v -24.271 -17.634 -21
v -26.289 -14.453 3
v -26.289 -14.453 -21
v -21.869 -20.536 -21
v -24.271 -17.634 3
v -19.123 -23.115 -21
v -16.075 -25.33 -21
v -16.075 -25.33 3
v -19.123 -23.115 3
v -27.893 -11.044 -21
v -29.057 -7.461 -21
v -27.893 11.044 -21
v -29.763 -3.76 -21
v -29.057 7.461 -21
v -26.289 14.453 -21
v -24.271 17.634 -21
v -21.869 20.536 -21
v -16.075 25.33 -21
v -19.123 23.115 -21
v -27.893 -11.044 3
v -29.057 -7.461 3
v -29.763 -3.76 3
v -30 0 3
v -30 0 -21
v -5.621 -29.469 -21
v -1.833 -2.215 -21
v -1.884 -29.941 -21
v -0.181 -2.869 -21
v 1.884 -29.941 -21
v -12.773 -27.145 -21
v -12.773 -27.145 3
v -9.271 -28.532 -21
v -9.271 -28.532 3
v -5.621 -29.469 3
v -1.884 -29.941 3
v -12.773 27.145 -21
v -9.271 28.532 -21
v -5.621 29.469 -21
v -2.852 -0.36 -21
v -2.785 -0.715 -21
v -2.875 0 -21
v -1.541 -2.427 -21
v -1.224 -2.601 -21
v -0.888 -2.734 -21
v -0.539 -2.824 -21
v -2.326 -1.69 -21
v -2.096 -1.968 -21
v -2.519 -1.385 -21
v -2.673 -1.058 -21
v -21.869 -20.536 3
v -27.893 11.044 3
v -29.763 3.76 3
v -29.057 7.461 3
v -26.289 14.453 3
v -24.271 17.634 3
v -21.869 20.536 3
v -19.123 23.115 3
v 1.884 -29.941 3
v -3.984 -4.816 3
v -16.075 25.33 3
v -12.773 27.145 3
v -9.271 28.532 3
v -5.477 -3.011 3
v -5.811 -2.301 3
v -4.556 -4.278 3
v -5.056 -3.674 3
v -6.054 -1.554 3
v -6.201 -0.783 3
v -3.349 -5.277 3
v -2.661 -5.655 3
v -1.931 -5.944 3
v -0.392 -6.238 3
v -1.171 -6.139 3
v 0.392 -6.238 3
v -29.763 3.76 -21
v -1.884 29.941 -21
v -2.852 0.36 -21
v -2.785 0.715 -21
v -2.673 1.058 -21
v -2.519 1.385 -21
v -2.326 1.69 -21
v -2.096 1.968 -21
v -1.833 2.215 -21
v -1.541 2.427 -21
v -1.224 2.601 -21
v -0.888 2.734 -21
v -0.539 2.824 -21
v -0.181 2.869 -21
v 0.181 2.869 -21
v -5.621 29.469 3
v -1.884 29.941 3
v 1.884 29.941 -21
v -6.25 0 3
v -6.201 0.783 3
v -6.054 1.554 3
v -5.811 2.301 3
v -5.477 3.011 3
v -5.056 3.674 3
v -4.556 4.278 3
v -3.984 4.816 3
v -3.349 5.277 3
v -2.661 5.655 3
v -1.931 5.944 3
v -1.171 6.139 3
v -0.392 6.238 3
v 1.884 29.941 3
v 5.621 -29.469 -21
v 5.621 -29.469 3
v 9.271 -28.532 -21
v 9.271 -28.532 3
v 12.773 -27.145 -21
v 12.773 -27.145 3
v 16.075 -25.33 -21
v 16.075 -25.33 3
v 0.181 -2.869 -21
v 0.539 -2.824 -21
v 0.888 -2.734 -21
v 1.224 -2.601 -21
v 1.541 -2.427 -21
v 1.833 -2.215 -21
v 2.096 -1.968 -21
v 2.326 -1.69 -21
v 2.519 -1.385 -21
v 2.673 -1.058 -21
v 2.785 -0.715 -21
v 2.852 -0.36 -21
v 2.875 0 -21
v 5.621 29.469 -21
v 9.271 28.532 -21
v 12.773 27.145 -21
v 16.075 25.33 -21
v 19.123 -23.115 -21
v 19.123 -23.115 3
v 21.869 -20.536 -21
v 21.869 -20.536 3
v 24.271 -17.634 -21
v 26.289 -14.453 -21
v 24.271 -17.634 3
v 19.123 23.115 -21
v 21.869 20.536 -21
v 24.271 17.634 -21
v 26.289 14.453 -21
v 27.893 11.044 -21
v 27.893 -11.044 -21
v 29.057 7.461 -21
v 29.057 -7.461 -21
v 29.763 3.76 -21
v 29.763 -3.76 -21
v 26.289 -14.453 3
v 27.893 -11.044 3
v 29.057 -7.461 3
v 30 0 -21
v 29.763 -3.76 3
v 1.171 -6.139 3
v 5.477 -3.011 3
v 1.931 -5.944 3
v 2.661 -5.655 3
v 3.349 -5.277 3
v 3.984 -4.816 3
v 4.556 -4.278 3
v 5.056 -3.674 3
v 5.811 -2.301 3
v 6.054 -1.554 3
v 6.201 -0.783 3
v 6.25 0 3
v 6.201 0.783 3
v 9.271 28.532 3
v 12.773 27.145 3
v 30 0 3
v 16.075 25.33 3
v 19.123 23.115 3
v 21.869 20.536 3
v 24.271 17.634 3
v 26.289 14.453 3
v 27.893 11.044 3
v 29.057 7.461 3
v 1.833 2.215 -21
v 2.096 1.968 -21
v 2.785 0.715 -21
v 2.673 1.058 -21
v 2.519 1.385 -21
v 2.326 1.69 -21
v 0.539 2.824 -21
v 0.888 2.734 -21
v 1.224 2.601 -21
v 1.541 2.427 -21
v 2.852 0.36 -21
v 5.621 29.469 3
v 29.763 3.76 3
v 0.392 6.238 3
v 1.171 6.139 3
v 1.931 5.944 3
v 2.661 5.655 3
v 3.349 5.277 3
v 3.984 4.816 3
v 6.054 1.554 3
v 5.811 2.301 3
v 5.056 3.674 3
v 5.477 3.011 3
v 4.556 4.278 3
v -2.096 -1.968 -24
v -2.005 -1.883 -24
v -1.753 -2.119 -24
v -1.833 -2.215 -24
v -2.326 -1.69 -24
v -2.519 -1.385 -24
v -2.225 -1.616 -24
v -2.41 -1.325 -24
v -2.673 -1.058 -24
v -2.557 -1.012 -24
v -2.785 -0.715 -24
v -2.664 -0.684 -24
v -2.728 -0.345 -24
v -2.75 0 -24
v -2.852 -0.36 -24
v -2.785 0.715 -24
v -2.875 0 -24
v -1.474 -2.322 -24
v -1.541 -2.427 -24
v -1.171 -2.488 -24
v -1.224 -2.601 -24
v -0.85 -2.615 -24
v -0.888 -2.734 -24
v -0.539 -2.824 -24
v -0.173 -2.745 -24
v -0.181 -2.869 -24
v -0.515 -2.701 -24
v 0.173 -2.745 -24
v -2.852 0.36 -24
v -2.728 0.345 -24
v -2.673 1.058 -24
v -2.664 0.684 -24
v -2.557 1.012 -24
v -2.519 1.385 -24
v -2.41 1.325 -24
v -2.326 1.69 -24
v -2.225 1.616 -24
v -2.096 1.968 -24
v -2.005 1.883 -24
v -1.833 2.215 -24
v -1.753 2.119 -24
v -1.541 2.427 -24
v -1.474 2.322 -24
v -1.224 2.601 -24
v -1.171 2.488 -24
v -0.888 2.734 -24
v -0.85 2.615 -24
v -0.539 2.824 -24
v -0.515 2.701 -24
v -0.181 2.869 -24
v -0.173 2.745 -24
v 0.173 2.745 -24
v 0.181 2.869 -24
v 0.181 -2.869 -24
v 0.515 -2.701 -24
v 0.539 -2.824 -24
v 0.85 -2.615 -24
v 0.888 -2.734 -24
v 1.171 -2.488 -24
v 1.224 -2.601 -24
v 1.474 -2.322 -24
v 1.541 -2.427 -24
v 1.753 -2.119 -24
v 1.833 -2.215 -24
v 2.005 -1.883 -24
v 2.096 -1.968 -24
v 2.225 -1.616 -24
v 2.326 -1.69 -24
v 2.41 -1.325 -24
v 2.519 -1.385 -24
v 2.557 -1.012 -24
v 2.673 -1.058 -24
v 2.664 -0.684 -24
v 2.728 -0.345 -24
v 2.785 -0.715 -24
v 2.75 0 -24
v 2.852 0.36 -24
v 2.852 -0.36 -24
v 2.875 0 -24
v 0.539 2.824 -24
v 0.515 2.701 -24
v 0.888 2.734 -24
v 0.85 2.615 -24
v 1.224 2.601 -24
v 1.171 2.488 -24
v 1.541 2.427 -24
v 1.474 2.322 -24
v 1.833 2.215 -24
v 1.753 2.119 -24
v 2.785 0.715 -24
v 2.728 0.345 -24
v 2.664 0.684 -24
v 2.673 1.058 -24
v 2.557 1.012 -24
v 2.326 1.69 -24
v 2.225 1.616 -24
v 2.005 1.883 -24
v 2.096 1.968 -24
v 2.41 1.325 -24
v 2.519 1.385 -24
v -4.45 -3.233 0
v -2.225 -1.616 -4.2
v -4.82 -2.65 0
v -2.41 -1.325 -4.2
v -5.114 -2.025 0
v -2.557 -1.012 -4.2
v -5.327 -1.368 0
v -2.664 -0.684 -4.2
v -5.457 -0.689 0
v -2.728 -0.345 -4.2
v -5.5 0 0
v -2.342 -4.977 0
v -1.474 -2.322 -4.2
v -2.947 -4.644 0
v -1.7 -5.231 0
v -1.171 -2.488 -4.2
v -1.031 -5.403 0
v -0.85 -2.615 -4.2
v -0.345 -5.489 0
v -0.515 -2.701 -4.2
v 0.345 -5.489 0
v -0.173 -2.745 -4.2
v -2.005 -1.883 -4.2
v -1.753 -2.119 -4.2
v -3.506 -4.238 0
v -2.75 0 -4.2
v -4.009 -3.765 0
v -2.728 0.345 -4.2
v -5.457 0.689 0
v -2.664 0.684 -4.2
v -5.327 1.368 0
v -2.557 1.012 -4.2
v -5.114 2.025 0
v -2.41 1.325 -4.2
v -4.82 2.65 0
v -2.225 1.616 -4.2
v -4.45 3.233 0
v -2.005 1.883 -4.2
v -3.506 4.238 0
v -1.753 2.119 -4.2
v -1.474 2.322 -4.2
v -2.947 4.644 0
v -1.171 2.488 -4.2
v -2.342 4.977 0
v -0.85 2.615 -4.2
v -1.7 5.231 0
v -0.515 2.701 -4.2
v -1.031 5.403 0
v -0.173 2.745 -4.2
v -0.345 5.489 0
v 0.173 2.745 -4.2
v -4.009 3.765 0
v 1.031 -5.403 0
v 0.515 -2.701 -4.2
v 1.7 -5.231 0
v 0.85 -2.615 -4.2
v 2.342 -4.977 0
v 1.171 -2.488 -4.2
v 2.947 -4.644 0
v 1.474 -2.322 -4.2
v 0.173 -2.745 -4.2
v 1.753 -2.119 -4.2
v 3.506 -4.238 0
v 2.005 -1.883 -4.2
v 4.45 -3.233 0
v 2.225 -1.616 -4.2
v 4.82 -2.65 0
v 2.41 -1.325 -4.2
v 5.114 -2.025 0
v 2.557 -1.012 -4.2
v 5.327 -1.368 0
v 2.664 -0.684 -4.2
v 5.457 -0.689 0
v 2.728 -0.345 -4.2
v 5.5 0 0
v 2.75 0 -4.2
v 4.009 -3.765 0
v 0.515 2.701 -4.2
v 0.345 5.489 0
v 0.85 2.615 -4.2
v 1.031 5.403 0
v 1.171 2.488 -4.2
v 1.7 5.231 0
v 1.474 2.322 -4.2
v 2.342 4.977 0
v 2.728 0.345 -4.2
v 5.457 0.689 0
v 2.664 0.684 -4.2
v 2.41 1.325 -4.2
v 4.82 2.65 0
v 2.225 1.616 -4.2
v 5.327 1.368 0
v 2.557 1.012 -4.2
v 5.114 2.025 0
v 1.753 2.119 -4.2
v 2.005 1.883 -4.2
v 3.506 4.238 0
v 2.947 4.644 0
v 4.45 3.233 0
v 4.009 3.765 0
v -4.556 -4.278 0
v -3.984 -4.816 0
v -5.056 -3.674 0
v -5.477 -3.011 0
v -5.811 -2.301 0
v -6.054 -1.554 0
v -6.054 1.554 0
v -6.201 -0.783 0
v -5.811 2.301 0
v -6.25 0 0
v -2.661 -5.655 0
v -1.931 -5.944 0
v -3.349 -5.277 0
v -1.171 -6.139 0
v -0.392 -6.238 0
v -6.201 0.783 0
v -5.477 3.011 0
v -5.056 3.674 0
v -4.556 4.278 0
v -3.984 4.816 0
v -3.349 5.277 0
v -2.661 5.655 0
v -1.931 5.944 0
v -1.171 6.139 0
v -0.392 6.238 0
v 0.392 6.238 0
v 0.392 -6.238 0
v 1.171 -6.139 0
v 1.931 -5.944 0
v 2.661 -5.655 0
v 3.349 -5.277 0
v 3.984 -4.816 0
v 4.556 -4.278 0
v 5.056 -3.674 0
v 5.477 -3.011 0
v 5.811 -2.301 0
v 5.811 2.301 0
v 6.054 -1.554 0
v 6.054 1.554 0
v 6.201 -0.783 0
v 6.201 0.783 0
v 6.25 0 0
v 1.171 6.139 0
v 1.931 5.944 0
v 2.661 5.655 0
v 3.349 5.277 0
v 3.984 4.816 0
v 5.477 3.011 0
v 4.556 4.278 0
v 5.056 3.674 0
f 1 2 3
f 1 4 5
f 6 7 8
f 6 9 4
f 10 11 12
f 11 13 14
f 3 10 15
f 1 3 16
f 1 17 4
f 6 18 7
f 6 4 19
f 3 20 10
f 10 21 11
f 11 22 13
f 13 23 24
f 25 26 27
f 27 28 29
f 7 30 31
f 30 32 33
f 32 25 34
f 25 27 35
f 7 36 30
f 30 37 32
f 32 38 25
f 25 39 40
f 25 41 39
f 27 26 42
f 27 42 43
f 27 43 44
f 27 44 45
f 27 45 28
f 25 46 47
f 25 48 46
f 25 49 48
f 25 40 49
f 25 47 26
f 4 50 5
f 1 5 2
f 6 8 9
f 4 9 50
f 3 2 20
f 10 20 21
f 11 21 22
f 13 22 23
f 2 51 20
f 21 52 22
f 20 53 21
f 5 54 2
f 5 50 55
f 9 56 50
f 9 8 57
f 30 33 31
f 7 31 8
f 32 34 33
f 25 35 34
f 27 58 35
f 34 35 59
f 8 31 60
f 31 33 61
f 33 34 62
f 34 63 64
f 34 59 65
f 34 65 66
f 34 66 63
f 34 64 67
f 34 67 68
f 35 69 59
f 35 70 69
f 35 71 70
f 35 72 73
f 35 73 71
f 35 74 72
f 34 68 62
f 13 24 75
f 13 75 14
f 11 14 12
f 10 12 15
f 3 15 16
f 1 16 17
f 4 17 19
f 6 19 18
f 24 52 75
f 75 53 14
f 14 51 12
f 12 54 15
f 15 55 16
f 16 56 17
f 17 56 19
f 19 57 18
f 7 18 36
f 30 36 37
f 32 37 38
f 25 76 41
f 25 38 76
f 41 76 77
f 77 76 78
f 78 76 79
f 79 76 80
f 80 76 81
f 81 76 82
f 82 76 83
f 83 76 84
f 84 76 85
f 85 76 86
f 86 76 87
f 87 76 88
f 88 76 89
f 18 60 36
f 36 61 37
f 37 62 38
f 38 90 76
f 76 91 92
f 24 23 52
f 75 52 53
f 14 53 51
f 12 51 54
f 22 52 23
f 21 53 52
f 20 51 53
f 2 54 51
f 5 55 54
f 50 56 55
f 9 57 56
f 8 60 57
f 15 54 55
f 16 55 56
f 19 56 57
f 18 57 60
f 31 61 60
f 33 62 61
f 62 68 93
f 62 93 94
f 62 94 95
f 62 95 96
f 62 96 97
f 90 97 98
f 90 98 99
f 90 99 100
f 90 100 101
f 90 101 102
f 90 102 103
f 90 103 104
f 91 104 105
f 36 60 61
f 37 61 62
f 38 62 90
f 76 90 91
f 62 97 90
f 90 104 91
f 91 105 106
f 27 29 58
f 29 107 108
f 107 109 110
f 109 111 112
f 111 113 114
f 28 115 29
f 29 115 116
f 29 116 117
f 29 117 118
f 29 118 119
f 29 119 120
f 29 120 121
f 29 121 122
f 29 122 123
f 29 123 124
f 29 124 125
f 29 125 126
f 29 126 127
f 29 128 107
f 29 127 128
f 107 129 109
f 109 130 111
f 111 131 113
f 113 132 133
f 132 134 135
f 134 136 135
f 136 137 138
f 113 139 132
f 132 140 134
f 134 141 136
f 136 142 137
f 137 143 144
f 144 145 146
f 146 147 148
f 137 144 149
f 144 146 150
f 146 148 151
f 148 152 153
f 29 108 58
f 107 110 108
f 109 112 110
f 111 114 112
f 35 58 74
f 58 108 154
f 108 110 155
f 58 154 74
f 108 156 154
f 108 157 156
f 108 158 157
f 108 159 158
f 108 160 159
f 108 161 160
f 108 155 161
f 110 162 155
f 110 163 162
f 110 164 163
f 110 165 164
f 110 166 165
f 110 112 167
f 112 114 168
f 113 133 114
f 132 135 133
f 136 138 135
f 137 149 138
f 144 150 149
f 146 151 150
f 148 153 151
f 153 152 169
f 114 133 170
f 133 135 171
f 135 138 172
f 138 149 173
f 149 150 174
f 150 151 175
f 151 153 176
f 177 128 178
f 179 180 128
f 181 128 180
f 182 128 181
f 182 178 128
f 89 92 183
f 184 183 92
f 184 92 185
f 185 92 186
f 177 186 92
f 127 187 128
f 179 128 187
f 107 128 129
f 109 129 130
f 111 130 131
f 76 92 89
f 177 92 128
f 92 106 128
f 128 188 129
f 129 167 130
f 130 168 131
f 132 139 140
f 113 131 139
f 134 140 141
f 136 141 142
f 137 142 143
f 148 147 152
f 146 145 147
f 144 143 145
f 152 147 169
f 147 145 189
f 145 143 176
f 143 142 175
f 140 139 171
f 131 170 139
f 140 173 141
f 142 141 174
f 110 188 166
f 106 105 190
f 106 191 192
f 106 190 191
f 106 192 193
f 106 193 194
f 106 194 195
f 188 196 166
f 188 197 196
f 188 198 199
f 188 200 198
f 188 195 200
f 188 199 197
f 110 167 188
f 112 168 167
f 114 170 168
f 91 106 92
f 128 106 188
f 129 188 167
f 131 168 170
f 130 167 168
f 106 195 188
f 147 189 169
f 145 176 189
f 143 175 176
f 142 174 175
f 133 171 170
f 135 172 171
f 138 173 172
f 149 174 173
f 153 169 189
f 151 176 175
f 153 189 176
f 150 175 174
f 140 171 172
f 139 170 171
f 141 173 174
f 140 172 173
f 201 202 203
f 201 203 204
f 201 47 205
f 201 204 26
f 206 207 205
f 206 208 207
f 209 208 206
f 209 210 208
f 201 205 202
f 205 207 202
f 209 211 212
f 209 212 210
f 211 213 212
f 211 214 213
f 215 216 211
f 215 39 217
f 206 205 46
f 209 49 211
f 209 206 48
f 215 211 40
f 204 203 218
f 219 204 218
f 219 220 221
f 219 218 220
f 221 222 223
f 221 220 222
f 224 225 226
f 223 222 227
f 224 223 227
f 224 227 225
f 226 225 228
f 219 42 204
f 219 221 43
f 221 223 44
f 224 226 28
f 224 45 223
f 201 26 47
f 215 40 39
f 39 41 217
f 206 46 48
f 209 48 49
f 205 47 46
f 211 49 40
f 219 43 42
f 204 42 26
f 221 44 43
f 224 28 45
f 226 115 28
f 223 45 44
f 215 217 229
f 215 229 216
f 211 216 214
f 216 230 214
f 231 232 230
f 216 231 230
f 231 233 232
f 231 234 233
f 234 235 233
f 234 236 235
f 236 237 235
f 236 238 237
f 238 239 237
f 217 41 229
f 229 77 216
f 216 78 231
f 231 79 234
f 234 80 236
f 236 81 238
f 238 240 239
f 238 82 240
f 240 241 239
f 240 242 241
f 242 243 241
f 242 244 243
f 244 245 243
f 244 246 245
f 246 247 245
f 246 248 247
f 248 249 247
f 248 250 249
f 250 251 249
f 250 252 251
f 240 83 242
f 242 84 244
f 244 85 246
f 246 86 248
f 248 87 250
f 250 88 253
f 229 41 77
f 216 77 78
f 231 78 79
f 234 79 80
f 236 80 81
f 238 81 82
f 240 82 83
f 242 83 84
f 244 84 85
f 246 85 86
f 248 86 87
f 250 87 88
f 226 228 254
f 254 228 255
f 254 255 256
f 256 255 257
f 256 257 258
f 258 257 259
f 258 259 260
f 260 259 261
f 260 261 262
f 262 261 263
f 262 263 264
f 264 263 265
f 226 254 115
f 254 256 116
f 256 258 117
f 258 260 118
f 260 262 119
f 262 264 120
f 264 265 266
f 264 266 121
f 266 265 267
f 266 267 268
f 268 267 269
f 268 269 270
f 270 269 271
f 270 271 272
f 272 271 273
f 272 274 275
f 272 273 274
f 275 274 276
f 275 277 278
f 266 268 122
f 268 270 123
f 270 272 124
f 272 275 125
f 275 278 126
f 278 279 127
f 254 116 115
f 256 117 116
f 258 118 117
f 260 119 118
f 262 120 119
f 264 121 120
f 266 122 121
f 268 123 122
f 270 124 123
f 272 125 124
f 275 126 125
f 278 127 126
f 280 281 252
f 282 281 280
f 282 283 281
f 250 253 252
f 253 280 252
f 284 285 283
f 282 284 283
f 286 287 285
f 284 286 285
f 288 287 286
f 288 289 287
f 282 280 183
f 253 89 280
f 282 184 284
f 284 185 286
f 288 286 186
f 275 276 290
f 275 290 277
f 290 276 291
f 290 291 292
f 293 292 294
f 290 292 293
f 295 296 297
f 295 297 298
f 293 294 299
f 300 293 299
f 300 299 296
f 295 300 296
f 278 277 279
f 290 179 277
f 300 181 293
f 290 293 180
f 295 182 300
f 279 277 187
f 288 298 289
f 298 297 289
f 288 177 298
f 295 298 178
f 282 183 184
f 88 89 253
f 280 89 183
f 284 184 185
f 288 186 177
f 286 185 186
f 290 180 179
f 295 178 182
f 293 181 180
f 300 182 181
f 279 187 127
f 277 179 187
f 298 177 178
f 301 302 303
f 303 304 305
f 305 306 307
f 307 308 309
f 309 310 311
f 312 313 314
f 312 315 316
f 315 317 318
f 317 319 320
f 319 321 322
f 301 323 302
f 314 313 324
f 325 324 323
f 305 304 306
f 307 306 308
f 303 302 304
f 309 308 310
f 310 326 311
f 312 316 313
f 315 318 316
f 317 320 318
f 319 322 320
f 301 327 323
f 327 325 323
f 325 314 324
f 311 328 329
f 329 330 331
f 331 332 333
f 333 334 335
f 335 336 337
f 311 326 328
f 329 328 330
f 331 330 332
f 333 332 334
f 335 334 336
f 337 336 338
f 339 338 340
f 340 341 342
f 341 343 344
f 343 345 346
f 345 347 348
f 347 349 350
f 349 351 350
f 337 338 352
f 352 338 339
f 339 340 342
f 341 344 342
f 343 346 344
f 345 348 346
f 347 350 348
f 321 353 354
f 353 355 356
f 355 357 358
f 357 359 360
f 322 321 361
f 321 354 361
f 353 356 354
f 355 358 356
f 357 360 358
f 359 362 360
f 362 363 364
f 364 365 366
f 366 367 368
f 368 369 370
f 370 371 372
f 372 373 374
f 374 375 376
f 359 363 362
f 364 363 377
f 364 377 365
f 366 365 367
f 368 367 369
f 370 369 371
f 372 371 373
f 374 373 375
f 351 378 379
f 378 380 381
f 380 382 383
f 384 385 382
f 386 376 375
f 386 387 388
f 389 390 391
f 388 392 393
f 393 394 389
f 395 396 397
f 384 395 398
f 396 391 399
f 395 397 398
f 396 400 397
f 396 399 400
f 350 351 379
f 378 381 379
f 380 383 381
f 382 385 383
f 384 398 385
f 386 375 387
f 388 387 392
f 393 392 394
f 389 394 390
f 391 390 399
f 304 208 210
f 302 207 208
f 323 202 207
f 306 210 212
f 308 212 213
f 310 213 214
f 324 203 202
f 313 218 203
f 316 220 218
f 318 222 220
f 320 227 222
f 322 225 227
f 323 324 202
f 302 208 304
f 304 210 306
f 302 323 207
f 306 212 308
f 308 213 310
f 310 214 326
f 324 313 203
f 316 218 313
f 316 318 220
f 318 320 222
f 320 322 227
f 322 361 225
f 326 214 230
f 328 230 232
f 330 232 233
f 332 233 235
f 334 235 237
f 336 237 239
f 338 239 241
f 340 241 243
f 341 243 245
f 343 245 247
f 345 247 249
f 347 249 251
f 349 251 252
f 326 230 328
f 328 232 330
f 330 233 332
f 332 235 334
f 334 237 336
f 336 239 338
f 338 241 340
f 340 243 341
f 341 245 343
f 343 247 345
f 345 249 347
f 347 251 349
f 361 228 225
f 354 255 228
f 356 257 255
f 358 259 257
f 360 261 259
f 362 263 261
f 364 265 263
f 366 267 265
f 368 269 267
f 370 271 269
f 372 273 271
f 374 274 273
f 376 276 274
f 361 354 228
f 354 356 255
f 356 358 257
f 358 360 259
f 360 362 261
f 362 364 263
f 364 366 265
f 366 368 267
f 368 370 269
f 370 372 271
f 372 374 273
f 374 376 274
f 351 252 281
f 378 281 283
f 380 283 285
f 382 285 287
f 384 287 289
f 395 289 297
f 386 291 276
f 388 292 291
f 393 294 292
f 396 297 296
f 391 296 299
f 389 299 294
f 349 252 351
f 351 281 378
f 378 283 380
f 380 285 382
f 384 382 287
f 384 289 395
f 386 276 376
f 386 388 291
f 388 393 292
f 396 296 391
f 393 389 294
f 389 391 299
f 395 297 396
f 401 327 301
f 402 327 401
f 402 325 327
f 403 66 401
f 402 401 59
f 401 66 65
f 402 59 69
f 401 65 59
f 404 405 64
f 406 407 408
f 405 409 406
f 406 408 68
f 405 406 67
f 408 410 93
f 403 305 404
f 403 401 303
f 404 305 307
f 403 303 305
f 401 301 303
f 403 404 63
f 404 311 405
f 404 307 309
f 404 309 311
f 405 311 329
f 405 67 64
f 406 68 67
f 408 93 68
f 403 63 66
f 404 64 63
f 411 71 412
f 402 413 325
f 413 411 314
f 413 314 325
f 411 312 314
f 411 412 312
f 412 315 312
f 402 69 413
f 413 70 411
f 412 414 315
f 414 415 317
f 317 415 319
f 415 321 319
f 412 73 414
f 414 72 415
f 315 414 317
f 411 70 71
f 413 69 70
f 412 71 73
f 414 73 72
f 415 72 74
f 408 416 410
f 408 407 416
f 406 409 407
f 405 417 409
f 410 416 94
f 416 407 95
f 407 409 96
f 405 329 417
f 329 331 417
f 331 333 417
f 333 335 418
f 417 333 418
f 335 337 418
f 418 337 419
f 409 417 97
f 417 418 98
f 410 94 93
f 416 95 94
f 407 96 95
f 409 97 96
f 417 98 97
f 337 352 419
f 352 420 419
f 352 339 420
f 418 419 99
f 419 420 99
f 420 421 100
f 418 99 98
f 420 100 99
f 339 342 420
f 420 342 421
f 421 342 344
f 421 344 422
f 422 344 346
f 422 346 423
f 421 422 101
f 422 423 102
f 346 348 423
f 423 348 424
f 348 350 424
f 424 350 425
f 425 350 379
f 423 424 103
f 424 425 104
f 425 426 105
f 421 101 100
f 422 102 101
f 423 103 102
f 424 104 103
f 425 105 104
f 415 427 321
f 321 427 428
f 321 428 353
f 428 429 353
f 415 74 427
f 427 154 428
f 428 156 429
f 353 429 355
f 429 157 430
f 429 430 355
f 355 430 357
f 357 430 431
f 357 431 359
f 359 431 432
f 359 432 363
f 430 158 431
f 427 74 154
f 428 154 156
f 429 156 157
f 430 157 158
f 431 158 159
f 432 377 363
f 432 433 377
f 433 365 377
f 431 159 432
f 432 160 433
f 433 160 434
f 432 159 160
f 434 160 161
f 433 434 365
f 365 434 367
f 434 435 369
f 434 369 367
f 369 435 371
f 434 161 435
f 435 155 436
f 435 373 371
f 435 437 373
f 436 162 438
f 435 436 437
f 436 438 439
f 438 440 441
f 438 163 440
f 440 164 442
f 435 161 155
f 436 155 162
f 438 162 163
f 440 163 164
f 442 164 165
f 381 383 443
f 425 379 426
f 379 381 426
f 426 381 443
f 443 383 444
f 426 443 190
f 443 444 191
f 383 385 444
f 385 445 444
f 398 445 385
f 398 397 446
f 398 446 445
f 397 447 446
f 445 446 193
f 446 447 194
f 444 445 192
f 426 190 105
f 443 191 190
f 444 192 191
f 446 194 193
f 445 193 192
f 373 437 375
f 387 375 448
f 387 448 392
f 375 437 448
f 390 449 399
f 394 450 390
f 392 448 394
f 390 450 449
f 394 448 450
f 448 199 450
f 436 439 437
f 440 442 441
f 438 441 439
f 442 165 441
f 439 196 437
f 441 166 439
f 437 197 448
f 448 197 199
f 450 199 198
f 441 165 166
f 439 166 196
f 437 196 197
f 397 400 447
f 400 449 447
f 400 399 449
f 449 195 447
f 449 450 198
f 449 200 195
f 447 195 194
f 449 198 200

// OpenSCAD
$fn = 50;

difference() {
	union() {
		translate(v = [0, 0, -21.0]) {
			cylinder(h = 24, r = 30.0);
		}
		#translate(v = [0, 0, -24.0]) {
			cylinder(h = 24, r = 2.875);
		}
	}
	union() {
		translate(v = [0, 0, 0]) {
			rotate(a = [0, 0, 0]) {
				difference() {
					union() {
						translate(v = [0, 0, -24.0]) {
							cylinder(h = 24, r = 2.25);
						}
						translate(v = [0, 0, -4.2]) {
							cylinder(h = 4.2, r1 = 2.75, r2 = 5.5);
						}
						translate(v = [0, 0, -24.0]) {
							cylinder(h = 24, r = 2.75);
						}
						translate(v = [0, 0, -24.0]) {
							cylinder(h = 24, r = 2.25);
						}
					}
					union();
				}
			}
		}
		#cylinder(h = 3, r = 6.25);
	}
}
